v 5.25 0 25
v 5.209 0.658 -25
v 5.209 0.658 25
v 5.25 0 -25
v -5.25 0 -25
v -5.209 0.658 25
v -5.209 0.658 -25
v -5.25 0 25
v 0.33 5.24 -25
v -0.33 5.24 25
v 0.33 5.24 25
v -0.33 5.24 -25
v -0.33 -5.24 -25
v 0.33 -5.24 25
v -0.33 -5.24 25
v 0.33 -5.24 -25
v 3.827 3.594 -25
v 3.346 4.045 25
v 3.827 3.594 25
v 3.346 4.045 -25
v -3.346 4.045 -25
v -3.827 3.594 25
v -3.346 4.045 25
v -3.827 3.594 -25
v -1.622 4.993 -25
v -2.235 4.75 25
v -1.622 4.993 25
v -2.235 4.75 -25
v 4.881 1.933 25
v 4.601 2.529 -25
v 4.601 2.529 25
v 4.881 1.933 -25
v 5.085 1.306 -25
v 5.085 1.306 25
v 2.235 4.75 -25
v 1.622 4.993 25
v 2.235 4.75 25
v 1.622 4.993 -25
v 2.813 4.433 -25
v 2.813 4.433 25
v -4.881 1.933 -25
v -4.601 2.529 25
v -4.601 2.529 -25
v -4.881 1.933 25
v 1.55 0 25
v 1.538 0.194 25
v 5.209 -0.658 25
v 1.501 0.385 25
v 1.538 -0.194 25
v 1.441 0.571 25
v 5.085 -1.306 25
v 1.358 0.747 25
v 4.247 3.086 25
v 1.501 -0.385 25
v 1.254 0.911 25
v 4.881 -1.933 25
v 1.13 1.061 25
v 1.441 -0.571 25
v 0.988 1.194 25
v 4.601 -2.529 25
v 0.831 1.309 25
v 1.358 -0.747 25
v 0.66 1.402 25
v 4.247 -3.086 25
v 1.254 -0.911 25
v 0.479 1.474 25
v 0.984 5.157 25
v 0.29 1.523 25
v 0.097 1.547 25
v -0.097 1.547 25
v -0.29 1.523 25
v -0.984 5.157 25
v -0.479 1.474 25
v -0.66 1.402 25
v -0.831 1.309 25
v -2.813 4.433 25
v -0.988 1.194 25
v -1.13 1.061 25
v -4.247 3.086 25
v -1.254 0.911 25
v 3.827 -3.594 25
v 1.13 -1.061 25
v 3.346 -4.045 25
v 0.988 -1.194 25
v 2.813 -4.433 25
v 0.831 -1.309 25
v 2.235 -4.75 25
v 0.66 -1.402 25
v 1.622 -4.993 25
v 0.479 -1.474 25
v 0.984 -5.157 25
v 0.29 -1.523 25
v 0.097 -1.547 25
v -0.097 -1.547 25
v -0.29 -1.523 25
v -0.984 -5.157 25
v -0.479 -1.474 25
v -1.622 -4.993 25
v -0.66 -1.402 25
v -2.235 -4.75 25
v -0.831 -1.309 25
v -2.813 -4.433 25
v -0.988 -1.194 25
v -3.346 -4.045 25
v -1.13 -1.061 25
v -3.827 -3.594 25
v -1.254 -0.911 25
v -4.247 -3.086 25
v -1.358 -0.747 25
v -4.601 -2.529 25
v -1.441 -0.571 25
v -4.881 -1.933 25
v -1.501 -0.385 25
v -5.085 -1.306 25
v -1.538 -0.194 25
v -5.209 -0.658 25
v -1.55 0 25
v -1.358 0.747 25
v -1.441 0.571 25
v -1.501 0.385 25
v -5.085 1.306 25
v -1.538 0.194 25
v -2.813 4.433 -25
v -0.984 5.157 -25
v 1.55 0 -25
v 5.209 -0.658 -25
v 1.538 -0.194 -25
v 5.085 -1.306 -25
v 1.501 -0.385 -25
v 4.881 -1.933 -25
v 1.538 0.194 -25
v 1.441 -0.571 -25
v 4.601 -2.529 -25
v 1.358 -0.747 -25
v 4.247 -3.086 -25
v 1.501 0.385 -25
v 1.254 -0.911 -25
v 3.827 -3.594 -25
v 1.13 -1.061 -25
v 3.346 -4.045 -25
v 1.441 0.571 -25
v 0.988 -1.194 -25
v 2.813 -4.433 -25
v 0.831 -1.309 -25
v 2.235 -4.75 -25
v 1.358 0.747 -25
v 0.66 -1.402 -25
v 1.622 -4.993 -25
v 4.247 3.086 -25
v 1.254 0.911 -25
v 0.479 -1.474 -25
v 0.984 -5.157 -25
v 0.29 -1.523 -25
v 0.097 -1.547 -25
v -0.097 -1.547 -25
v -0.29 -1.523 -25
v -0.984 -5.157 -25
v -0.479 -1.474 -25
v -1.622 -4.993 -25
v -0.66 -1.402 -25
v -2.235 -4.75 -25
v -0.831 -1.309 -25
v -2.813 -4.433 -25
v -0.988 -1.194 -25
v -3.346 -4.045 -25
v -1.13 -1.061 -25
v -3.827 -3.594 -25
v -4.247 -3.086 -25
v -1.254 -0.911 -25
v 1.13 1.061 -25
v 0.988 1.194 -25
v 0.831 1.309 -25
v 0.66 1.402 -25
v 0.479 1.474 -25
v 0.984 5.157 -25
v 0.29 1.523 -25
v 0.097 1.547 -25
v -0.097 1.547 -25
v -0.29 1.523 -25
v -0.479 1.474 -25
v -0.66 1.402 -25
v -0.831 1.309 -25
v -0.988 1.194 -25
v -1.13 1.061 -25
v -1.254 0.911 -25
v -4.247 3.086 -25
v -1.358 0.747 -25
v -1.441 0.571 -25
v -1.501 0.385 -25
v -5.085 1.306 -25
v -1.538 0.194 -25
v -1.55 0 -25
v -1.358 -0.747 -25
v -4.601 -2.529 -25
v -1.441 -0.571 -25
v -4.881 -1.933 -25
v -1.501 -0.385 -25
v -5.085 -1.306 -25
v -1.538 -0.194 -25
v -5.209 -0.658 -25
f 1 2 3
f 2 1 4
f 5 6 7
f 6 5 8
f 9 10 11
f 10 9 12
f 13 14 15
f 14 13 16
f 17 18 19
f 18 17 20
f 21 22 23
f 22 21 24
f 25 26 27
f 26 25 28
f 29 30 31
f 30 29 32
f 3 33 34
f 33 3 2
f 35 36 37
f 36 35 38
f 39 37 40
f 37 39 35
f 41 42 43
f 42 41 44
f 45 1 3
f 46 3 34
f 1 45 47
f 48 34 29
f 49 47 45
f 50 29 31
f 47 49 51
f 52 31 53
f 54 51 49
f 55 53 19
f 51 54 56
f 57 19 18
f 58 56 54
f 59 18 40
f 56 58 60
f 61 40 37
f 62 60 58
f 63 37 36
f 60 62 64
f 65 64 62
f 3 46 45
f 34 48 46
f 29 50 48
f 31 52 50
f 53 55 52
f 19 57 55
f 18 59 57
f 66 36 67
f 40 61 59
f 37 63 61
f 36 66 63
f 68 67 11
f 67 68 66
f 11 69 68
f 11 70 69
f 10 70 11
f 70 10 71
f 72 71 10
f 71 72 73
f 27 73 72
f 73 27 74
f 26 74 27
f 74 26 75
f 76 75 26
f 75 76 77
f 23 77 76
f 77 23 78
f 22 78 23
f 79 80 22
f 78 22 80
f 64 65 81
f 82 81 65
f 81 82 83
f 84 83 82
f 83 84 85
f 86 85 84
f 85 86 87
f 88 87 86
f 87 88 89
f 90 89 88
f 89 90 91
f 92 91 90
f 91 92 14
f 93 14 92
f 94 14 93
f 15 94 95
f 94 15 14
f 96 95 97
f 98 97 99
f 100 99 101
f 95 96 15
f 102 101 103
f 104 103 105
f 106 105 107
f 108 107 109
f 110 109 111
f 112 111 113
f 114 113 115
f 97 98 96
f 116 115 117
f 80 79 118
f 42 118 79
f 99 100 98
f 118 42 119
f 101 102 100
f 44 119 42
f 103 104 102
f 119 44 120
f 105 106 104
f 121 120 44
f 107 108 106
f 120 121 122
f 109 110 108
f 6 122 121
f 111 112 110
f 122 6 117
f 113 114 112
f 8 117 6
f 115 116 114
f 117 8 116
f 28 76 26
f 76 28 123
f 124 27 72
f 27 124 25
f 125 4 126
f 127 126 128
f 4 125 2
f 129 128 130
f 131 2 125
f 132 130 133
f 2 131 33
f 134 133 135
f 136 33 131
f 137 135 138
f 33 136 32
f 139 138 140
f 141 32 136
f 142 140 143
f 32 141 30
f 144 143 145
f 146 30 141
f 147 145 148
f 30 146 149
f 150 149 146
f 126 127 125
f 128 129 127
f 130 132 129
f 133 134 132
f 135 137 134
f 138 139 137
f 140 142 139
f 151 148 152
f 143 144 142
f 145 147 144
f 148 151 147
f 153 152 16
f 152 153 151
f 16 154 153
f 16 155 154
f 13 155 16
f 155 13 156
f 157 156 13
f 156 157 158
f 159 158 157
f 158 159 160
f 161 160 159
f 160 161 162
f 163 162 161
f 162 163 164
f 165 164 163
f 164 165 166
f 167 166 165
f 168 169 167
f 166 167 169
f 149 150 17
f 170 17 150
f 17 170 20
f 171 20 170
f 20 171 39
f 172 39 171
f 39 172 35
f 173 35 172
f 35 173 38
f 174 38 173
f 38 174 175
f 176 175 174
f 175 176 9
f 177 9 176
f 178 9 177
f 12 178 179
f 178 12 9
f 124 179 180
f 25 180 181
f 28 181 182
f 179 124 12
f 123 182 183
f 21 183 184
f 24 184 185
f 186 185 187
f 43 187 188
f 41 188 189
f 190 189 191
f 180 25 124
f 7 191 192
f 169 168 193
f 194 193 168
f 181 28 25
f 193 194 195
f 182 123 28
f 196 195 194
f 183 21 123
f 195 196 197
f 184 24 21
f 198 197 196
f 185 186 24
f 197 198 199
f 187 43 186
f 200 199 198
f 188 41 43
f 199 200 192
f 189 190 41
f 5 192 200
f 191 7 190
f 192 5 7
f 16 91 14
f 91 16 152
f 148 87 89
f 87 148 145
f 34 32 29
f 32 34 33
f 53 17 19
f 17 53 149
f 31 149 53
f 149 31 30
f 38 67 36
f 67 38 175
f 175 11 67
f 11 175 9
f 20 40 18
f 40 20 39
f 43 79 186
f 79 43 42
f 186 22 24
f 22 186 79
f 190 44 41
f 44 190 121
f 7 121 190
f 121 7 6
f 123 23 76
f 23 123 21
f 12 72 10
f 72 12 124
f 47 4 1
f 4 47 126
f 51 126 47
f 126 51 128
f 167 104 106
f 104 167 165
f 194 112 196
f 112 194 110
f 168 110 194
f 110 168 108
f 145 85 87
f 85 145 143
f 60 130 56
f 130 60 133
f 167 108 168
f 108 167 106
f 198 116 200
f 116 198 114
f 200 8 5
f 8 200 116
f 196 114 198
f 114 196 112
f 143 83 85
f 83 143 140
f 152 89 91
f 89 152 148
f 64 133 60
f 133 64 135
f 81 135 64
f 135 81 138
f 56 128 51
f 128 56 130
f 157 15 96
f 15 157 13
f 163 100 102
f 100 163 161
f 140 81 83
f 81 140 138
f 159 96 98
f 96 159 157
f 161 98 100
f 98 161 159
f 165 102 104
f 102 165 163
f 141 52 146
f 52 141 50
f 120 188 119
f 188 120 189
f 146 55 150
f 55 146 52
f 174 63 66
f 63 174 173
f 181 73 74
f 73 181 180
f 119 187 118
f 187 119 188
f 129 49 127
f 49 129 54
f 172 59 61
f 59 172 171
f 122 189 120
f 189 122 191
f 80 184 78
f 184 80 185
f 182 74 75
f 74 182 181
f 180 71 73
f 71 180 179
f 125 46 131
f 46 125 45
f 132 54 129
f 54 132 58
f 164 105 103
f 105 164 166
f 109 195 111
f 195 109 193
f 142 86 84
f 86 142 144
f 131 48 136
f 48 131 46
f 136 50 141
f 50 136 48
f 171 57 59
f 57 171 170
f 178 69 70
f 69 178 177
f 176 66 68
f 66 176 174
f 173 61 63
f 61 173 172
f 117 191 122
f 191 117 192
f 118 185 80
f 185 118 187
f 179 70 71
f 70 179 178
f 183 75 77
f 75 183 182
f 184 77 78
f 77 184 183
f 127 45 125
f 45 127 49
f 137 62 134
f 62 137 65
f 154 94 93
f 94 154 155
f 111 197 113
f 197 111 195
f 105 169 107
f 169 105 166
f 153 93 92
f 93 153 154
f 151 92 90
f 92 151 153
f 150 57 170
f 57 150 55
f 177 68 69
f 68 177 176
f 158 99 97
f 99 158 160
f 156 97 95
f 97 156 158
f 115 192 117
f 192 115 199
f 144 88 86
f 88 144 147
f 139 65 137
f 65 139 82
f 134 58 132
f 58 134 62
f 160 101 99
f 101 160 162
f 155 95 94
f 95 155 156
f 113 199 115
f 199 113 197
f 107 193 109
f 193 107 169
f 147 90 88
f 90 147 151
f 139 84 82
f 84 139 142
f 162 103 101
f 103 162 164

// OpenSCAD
$fn = 50;


difference() {
	union() {
		translate(v = [0, 0, -25.0000000000]) {
			cylinder(h = 50, r = 5.2500000000);
		}
	}
	union() {
		translate(v = [0, 0, -100.0000000000]) {
			cylinder(h = 200, r = 1.5500000000);
		}
	}
}
